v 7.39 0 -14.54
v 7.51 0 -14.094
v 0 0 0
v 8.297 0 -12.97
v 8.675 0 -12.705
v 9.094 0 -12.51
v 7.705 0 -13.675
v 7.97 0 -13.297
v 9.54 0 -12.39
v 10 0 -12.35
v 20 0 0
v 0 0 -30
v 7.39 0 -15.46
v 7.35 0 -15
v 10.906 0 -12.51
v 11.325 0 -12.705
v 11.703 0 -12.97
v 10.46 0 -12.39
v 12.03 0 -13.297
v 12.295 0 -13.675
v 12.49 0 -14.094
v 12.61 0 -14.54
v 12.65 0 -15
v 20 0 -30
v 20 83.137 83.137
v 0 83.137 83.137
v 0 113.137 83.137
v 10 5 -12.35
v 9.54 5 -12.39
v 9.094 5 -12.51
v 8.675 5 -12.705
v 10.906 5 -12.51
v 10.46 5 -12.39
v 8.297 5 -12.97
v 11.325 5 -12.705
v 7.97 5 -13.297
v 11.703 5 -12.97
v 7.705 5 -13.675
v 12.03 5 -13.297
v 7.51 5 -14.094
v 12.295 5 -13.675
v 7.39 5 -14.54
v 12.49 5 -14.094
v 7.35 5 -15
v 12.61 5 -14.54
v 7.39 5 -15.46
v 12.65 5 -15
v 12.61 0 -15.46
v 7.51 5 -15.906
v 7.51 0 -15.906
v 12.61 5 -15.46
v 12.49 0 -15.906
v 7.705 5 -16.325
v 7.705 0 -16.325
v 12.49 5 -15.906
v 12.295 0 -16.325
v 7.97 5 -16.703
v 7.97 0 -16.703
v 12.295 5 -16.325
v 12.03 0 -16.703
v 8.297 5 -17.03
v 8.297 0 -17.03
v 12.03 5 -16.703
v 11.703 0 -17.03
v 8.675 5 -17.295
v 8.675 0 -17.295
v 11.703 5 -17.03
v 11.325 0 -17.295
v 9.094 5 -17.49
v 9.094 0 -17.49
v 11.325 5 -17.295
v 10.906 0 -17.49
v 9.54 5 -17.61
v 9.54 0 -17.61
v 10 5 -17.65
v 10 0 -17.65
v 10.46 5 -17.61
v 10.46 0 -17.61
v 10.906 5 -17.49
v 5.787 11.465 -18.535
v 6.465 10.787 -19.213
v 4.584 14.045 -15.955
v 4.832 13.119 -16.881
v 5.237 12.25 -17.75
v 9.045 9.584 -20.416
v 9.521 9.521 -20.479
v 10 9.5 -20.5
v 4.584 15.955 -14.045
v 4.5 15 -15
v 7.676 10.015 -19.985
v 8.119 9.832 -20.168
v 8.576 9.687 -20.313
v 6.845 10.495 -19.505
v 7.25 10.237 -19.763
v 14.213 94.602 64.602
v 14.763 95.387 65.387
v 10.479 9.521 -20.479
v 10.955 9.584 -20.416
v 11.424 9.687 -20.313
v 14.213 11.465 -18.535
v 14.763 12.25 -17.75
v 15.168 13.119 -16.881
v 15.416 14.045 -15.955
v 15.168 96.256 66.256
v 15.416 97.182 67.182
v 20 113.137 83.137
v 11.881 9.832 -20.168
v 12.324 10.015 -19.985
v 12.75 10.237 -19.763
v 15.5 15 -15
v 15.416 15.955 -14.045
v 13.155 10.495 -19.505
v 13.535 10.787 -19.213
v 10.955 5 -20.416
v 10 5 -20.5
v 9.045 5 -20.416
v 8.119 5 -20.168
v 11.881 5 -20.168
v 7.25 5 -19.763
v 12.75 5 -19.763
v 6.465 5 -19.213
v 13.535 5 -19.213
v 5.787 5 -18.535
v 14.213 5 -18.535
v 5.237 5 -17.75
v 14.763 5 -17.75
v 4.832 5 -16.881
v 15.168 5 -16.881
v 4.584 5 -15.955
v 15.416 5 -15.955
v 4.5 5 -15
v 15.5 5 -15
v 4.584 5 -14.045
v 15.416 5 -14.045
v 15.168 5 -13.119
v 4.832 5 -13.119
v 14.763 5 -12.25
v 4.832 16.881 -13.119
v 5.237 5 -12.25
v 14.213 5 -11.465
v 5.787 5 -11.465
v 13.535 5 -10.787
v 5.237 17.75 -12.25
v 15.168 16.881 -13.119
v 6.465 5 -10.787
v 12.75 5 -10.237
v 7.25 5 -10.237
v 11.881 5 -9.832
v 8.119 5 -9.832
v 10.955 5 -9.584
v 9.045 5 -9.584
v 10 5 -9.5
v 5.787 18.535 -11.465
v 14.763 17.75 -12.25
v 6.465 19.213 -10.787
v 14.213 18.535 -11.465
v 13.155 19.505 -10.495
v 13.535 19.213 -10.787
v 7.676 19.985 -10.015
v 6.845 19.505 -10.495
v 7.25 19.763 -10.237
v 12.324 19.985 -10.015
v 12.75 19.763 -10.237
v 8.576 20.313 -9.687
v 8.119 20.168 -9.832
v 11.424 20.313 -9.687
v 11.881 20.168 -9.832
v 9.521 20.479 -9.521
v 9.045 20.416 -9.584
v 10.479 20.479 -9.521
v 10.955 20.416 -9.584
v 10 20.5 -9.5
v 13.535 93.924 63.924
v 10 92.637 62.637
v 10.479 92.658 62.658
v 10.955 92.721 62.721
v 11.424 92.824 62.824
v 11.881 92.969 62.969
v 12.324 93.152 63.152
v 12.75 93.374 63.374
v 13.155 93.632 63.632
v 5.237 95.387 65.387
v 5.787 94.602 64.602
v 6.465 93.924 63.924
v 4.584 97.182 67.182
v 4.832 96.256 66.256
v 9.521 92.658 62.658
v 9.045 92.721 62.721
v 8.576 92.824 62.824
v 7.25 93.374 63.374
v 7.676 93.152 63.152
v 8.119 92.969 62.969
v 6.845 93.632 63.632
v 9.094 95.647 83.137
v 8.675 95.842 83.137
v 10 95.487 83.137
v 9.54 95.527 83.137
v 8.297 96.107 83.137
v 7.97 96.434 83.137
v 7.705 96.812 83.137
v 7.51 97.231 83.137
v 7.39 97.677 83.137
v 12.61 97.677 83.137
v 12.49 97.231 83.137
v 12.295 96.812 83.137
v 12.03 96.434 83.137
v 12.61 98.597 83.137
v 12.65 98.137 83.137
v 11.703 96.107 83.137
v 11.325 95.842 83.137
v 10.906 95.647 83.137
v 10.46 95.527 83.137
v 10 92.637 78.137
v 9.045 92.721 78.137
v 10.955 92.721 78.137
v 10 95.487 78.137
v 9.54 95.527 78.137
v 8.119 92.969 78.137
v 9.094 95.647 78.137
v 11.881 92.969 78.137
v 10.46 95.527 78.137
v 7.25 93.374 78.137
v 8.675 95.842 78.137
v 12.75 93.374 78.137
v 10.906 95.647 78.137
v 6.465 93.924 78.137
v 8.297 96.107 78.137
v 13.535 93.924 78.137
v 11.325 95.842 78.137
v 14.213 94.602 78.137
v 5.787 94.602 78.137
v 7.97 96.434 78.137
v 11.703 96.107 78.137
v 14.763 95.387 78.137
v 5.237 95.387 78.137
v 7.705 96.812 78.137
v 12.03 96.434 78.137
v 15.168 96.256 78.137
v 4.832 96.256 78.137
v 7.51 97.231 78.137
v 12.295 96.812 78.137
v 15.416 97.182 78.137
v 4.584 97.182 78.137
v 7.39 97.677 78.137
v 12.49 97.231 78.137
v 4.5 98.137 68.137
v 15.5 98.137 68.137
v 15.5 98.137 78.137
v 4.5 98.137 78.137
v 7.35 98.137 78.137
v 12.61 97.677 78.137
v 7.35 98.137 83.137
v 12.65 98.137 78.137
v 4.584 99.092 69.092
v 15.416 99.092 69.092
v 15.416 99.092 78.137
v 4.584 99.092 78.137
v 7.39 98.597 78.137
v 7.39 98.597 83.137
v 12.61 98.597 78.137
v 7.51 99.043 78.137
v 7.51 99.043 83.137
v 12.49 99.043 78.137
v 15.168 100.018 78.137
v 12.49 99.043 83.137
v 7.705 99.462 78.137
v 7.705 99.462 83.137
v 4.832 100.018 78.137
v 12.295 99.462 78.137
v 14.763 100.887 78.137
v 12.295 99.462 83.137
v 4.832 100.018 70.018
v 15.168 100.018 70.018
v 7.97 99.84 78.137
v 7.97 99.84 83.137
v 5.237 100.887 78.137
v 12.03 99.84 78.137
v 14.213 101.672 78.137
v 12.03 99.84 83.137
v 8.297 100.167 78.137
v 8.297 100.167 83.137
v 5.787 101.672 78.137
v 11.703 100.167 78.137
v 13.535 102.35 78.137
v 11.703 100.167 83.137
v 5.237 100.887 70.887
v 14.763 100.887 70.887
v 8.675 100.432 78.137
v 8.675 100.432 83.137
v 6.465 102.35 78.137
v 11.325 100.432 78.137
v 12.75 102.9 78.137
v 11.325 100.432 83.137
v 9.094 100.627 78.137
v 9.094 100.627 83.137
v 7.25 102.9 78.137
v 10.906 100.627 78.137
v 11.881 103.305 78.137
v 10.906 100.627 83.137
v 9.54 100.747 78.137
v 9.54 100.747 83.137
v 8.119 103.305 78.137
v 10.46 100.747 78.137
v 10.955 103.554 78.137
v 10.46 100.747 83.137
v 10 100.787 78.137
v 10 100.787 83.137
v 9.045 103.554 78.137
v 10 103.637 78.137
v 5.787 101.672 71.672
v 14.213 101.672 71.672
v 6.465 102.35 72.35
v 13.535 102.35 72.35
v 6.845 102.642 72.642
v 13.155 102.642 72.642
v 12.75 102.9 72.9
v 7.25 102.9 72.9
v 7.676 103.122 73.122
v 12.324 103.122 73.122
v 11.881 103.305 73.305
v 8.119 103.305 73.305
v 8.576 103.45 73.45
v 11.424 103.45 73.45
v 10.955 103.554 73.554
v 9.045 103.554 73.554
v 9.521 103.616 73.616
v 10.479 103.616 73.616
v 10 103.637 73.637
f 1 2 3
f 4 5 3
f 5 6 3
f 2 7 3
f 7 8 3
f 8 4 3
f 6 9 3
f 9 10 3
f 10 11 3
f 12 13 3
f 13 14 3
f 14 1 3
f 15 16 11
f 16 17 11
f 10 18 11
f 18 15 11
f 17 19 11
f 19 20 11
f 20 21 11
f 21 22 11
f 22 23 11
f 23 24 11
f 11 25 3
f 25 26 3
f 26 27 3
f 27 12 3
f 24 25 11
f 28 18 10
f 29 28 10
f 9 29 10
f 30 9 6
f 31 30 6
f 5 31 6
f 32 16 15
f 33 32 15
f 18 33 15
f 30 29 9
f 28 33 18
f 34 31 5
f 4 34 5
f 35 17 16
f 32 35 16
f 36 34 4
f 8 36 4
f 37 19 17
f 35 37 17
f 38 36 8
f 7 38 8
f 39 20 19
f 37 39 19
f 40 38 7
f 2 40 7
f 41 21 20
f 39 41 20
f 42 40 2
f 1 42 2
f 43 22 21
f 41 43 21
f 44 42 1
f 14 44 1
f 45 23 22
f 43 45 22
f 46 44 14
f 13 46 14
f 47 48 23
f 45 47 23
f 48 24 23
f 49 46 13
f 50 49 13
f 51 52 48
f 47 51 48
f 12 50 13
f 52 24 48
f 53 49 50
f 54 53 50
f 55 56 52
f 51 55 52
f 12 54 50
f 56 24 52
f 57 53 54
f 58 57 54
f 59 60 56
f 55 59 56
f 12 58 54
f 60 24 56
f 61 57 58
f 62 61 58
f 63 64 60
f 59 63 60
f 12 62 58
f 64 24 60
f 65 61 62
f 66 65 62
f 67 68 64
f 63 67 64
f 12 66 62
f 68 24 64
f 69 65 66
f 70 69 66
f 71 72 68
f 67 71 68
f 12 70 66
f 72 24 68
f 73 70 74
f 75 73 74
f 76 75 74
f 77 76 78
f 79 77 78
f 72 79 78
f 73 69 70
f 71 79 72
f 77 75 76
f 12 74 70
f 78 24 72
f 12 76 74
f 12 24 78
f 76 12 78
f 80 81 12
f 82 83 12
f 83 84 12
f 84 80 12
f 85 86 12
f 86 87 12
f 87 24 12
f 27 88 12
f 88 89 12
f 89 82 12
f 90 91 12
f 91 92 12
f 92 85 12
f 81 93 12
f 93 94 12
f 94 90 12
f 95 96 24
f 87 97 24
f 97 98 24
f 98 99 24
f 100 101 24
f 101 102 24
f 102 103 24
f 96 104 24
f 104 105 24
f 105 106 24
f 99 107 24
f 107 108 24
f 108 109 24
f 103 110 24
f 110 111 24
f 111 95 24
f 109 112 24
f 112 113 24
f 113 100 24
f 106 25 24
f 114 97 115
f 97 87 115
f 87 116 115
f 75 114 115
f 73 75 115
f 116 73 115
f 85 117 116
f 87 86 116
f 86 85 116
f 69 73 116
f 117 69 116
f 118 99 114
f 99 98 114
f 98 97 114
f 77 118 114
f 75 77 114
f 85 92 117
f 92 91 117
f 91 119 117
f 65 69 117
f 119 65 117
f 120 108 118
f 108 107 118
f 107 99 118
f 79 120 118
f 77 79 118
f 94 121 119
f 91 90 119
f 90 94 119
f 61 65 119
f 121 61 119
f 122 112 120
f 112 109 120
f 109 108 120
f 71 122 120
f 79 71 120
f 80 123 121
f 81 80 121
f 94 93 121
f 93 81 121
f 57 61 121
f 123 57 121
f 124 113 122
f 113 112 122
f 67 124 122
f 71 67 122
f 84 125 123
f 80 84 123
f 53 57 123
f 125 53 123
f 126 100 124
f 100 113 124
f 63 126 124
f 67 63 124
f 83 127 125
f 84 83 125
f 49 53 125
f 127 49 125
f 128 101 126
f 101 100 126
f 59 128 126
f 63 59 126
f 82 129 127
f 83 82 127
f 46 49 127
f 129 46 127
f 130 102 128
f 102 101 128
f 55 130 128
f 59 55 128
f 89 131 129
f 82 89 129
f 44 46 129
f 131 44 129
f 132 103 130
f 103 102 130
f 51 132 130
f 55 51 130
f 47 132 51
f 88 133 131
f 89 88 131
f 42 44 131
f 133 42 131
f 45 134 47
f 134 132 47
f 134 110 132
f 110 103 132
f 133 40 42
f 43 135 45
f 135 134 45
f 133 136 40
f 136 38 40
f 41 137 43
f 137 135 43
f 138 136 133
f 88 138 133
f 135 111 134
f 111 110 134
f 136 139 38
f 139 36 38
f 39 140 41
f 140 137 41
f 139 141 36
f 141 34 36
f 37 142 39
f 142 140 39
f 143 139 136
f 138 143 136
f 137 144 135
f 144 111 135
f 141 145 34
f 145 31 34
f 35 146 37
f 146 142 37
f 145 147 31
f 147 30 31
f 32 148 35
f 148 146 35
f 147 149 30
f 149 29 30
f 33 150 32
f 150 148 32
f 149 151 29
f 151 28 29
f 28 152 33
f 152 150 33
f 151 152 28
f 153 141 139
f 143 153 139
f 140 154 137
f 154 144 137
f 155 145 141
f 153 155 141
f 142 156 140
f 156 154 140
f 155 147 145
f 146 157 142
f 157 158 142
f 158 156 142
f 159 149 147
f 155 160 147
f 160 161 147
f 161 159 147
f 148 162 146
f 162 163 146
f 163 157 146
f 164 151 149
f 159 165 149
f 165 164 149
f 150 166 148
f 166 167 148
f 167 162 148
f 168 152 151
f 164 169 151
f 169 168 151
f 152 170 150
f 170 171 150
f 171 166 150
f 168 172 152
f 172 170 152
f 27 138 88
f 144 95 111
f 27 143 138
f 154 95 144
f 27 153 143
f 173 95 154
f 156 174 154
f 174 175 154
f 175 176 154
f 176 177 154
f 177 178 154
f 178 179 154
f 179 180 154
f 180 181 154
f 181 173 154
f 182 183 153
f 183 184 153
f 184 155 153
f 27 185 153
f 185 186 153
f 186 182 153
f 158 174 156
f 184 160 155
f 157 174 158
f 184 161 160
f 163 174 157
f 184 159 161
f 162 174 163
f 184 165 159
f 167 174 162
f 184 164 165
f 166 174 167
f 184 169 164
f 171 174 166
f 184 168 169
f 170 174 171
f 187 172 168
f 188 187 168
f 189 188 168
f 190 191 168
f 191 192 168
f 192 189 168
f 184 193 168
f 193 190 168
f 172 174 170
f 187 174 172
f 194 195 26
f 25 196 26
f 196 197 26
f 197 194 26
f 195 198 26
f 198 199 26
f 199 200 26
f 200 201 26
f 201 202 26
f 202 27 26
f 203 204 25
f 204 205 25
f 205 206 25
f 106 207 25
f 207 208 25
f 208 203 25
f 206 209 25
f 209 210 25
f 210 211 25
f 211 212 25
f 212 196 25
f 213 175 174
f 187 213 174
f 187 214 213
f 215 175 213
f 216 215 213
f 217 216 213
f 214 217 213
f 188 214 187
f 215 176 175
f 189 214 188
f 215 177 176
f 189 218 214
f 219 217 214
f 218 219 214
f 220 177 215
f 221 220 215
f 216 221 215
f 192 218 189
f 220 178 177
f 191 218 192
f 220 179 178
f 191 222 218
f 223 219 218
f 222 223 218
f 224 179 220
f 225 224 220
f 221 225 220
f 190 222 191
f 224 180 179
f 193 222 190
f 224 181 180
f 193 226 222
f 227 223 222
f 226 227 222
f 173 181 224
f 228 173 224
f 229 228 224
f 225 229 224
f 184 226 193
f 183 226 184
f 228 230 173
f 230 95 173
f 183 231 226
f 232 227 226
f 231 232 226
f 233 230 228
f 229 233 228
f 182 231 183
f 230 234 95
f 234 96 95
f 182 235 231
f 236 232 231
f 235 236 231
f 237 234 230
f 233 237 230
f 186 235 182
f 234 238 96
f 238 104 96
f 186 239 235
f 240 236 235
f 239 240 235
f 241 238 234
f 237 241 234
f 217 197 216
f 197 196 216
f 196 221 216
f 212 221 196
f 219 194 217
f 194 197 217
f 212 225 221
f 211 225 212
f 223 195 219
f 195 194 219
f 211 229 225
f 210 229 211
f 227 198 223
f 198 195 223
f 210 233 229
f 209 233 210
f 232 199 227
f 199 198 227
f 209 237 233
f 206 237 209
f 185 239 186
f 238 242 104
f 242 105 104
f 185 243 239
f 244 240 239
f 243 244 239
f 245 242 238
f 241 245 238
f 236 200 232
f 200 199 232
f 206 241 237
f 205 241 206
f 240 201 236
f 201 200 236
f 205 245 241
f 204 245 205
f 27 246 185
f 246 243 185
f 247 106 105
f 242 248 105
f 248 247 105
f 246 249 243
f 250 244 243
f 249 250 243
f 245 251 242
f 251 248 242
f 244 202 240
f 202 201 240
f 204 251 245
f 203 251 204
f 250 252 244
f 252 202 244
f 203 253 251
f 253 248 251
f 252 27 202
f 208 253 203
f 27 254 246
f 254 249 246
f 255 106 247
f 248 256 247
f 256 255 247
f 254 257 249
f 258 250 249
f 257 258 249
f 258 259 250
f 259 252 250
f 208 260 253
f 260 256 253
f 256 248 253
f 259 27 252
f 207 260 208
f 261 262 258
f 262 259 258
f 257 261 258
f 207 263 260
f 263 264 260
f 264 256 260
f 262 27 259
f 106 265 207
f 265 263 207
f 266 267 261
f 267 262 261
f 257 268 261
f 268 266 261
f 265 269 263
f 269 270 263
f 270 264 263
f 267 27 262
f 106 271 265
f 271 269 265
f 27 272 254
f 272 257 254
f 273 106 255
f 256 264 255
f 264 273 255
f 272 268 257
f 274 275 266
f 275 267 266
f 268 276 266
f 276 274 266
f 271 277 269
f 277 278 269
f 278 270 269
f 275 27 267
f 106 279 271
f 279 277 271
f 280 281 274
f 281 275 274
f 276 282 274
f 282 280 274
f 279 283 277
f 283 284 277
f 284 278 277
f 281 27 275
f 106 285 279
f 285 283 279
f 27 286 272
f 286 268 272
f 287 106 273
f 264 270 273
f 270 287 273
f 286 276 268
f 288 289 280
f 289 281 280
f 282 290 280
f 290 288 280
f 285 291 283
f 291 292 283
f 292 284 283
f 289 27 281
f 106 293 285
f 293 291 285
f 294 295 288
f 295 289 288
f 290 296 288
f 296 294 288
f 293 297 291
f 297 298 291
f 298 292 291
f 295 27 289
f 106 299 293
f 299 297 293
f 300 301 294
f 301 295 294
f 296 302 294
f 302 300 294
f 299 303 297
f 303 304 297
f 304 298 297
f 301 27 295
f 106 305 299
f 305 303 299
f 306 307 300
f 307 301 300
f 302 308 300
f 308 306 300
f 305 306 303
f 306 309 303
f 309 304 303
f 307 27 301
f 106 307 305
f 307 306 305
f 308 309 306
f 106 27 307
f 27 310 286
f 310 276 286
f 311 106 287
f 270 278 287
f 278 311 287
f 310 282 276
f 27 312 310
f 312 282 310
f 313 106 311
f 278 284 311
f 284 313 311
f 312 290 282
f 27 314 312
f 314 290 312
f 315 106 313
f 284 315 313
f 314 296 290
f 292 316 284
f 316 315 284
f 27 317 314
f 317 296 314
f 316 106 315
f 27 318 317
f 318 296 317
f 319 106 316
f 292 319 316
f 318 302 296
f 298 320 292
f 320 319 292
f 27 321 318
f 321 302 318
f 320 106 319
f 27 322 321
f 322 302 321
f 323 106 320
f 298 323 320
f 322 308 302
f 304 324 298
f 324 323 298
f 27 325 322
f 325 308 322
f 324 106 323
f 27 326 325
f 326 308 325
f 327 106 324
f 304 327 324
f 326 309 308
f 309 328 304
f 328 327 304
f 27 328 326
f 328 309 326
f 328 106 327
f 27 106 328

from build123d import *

# Parameters (mm, degrees)
BOSS_EXTRUDE1_DEPTH = 20
SKETCH3_R           = 2.65
CUT_EXTRUDE1_DEPTH  = 114.13708499
SKETCH4_R           = 2.65
CUT_EXTRUDE2_DEPTH  = 114.13708499
SKETCH5_R           = 5.5
CUT_EXTRUDE3_DEPTH  = 109.13708499
SKETCH6_R           = 5.5
CUT_EXTRUDE4_DEPTH  = 109.13708499


with BuildPart() as part:
    # Sketch2 → Boss-Extrude1 (new body)
    with BuildSketch(Plane(origin=(0, 0, 0), x_dir=(0, 0, -1), z_dir=(1, 0, 0))):
        Polygon((0, 0), (-83.13708499, 83.13708499), (-83.13708499, 113.13708499), (30, 0), align=None)
    extrude(amount=BOSS_EXTRUDE1_DEPTH)

    # Sketch3 → Cut-Extrude1 (cut, through all)
    with BuildSketch(Plane.XZ):
        with Locations((10, -15)):
            Circle(SKETCH3_R)
    extrude(amount=-CUT_EXTRUDE1_DEPTH, mode=Mode.SUBTRACT)

    # Sketch4 → Cut-Extrude2 (cut, through all)
    with BuildSketch(Plane.XY.offset(83.13708499)):
        with Locations((10, 98.13708499)):
            Circle(SKETCH4_R)
    extrude(amount=-CUT_EXTRUDE2_DEPTH, mode=Mode.SUBTRACT)

    # Sketch5 → Cut-Extrude3 (cut, through all)
    with BuildSketch(Plane.XY.offset(78.13708499)):
        with Locations((10, 98.13708499)):
            Circle(SKETCH5_R)
    extrude(amount=-CUT_EXTRUDE3_DEPTH, mode=Mode.SUBTRACT)

    # Sketch6 → Cut-Extrude4 (cut, through all)
    with BuildSketch(Plane(origin=(0, 5, 0), x_dir=(-1, 0, 0), z_dir=(0, -1, 0))):
        with Locations((-10, 15)):
            Circle(SKETCH6_R)
    extrude(amount=-CUT_EXTRUDE4_DEPTH, mode=Mode.SUBTRACT)


solid = part.part
